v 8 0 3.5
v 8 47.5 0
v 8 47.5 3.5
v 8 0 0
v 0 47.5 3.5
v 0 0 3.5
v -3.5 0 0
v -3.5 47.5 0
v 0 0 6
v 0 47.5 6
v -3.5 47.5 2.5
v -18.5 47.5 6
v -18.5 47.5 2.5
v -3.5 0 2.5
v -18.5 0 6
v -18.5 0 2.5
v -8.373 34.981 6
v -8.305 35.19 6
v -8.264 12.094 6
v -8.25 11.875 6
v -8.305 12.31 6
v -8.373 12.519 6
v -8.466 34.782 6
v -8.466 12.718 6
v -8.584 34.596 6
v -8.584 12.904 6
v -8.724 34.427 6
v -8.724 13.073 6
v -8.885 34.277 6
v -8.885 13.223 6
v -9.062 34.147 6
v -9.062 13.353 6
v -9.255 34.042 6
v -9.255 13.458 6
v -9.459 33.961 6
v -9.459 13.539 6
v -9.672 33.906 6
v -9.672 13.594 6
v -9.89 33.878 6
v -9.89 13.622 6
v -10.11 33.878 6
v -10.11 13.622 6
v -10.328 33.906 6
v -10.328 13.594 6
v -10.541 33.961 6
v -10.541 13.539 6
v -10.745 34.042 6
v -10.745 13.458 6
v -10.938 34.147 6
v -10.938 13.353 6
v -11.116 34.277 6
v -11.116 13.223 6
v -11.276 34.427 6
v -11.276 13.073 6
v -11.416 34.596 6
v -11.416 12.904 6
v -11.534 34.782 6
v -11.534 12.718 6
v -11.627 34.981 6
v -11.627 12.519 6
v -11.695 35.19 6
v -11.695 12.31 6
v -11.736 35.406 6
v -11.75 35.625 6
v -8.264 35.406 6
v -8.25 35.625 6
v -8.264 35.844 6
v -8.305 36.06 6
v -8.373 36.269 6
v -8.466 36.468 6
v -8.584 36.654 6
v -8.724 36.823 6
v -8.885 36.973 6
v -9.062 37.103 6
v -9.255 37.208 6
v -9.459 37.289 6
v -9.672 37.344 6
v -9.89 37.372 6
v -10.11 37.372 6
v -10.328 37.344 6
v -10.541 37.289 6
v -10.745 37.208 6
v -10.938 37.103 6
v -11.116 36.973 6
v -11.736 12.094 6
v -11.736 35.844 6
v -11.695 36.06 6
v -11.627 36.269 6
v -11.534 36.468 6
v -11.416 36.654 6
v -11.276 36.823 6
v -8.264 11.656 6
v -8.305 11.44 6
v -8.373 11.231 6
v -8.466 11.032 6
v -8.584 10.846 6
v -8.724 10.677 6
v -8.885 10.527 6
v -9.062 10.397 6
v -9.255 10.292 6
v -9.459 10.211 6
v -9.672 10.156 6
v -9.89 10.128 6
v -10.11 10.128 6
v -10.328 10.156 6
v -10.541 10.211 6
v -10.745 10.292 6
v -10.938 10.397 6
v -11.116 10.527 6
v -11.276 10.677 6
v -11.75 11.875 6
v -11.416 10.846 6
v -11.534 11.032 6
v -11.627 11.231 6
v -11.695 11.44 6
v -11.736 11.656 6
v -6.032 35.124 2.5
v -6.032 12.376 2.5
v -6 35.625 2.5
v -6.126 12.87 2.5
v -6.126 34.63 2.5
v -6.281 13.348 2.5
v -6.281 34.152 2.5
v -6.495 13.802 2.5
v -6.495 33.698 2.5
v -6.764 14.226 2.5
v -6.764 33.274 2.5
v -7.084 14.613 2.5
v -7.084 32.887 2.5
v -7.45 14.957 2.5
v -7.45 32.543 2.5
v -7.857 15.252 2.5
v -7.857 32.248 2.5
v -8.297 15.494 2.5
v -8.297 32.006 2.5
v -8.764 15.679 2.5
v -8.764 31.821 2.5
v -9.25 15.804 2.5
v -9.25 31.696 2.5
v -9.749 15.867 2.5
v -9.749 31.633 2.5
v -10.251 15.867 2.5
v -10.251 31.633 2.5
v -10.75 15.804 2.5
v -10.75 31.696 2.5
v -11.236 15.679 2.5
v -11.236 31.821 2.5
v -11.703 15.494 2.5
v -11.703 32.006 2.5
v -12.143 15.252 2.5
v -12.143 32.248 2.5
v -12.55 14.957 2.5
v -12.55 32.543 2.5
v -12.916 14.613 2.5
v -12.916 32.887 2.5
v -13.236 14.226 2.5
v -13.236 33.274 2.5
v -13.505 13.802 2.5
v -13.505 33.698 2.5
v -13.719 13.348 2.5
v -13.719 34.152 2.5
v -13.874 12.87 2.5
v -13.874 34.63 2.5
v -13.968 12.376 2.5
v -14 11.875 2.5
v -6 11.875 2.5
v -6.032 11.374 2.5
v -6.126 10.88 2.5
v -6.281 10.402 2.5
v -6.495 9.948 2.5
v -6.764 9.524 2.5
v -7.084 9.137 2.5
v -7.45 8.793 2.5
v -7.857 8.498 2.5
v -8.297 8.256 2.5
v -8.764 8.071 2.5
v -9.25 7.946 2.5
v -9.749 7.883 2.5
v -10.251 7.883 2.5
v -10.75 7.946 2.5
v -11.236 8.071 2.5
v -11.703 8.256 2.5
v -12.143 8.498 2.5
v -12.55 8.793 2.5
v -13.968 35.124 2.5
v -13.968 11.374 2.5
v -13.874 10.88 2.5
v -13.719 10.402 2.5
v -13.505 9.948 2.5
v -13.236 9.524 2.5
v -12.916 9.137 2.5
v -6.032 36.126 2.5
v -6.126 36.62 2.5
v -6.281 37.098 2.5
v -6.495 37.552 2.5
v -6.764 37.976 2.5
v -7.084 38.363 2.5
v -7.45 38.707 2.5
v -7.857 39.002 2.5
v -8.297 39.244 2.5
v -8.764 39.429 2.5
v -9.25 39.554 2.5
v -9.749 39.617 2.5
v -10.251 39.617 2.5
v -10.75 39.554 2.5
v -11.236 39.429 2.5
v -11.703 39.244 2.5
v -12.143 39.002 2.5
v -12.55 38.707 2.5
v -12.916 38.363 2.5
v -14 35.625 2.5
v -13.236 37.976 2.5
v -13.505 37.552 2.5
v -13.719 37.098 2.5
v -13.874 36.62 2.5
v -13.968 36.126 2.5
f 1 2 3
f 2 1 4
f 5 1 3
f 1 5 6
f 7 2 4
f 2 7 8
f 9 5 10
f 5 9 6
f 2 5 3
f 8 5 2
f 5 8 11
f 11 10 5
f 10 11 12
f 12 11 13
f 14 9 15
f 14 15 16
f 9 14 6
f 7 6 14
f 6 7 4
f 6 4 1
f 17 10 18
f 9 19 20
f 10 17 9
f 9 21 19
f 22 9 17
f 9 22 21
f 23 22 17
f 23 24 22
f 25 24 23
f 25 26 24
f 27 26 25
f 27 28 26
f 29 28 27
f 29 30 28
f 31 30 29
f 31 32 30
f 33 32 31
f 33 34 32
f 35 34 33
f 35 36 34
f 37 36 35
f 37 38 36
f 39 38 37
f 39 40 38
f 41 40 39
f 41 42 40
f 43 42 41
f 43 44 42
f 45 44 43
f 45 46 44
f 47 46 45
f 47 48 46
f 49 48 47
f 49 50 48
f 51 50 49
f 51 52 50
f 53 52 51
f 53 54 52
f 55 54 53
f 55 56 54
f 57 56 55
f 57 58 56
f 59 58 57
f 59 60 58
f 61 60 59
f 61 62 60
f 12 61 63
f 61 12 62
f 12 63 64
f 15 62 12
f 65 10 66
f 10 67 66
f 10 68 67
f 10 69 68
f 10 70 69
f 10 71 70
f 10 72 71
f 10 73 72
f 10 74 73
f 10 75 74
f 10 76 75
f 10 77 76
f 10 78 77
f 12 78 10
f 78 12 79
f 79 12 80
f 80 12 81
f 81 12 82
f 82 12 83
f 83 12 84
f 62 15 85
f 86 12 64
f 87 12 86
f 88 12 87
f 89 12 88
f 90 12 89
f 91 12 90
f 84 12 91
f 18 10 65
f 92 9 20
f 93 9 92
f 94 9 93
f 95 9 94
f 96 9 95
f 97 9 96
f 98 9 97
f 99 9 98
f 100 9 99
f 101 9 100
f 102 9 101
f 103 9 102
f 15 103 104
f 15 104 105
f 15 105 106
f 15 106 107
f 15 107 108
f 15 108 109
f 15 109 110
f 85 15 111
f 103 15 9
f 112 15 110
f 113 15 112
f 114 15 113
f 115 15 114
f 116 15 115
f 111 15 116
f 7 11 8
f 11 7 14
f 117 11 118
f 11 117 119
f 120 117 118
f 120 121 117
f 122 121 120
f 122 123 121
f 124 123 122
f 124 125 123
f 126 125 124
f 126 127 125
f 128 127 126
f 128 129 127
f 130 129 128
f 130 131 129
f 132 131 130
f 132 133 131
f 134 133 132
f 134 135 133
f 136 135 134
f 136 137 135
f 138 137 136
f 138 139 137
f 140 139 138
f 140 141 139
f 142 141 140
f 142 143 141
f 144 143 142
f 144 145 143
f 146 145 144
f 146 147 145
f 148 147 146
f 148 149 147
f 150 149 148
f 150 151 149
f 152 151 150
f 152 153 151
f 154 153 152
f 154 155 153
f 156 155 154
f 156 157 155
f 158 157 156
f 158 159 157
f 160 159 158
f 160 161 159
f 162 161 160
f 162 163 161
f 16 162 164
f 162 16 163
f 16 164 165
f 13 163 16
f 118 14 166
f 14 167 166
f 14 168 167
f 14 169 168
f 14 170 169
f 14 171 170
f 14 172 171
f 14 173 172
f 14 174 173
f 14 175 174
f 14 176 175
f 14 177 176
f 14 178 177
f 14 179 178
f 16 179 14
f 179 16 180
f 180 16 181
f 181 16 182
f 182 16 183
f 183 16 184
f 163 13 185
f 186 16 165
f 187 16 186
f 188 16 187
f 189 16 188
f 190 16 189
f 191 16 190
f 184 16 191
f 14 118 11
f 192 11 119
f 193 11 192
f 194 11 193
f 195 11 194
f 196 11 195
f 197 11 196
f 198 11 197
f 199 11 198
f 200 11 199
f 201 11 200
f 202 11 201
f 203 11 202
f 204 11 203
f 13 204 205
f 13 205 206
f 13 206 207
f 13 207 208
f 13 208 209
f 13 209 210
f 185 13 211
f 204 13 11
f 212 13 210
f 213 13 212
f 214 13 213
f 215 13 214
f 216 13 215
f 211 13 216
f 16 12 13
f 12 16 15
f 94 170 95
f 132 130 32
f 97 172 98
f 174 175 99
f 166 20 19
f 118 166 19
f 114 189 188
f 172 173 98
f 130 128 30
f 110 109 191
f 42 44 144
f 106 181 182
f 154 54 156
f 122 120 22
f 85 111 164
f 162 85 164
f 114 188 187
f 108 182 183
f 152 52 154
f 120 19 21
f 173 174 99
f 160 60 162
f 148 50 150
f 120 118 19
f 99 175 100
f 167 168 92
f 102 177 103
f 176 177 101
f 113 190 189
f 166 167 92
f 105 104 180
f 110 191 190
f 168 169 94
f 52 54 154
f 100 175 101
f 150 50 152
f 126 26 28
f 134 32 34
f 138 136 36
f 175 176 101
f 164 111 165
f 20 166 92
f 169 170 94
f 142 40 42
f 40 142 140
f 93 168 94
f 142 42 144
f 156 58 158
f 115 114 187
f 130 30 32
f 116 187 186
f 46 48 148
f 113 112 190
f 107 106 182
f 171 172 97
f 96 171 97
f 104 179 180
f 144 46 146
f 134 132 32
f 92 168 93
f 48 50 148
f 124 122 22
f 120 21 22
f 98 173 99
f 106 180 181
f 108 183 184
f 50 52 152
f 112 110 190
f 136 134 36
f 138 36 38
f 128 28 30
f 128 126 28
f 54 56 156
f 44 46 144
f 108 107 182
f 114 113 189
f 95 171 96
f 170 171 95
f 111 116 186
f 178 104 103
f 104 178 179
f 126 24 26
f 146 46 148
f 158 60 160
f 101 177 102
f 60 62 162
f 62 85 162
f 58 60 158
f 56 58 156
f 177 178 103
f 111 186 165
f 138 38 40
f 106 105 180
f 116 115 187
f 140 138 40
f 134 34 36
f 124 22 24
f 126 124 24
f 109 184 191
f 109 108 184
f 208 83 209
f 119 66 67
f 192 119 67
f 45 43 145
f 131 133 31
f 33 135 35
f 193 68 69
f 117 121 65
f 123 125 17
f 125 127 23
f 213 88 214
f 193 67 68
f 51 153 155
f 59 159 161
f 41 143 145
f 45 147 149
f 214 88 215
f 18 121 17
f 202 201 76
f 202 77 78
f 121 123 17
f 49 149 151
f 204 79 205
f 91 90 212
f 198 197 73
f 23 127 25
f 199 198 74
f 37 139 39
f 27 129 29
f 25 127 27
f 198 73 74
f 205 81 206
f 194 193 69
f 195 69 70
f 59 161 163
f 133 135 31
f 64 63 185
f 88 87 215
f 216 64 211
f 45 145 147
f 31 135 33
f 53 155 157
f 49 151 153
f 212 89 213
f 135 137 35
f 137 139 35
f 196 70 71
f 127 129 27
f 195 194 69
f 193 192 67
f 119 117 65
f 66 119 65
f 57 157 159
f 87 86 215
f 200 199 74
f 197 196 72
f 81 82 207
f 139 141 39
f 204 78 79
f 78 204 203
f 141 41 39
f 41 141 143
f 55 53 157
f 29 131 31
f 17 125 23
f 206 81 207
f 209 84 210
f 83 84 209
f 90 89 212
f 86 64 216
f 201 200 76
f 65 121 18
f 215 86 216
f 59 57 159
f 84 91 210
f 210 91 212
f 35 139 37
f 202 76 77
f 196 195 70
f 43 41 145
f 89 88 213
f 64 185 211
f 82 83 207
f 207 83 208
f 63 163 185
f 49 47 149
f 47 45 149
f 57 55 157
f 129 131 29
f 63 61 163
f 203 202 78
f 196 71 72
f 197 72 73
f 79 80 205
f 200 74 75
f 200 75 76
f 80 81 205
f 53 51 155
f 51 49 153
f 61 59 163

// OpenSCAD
$fn=50;

width = 47.5;

difference() {

     union() {
          cube([8.0,width,3.5],center=false);
          translate([-3.5,0,0]) {
               cube([3.5,width,2.5+3.5],center=false);
          }
          translate([-15-3.5,0,2.5]) {
               cube([15,width,3.5],center=false);
          }
     }

     union() {
          translate([-10,width/4,2.5]) {
               cylinder(h=3.5, d1=8.0, d2=3.5, center=false);
          }
          translate([-10,width/4*3,2.5]) {
               cylinder(h=3.5, d1=8.0, d2=3.5, center=false);
          }
     }

}
